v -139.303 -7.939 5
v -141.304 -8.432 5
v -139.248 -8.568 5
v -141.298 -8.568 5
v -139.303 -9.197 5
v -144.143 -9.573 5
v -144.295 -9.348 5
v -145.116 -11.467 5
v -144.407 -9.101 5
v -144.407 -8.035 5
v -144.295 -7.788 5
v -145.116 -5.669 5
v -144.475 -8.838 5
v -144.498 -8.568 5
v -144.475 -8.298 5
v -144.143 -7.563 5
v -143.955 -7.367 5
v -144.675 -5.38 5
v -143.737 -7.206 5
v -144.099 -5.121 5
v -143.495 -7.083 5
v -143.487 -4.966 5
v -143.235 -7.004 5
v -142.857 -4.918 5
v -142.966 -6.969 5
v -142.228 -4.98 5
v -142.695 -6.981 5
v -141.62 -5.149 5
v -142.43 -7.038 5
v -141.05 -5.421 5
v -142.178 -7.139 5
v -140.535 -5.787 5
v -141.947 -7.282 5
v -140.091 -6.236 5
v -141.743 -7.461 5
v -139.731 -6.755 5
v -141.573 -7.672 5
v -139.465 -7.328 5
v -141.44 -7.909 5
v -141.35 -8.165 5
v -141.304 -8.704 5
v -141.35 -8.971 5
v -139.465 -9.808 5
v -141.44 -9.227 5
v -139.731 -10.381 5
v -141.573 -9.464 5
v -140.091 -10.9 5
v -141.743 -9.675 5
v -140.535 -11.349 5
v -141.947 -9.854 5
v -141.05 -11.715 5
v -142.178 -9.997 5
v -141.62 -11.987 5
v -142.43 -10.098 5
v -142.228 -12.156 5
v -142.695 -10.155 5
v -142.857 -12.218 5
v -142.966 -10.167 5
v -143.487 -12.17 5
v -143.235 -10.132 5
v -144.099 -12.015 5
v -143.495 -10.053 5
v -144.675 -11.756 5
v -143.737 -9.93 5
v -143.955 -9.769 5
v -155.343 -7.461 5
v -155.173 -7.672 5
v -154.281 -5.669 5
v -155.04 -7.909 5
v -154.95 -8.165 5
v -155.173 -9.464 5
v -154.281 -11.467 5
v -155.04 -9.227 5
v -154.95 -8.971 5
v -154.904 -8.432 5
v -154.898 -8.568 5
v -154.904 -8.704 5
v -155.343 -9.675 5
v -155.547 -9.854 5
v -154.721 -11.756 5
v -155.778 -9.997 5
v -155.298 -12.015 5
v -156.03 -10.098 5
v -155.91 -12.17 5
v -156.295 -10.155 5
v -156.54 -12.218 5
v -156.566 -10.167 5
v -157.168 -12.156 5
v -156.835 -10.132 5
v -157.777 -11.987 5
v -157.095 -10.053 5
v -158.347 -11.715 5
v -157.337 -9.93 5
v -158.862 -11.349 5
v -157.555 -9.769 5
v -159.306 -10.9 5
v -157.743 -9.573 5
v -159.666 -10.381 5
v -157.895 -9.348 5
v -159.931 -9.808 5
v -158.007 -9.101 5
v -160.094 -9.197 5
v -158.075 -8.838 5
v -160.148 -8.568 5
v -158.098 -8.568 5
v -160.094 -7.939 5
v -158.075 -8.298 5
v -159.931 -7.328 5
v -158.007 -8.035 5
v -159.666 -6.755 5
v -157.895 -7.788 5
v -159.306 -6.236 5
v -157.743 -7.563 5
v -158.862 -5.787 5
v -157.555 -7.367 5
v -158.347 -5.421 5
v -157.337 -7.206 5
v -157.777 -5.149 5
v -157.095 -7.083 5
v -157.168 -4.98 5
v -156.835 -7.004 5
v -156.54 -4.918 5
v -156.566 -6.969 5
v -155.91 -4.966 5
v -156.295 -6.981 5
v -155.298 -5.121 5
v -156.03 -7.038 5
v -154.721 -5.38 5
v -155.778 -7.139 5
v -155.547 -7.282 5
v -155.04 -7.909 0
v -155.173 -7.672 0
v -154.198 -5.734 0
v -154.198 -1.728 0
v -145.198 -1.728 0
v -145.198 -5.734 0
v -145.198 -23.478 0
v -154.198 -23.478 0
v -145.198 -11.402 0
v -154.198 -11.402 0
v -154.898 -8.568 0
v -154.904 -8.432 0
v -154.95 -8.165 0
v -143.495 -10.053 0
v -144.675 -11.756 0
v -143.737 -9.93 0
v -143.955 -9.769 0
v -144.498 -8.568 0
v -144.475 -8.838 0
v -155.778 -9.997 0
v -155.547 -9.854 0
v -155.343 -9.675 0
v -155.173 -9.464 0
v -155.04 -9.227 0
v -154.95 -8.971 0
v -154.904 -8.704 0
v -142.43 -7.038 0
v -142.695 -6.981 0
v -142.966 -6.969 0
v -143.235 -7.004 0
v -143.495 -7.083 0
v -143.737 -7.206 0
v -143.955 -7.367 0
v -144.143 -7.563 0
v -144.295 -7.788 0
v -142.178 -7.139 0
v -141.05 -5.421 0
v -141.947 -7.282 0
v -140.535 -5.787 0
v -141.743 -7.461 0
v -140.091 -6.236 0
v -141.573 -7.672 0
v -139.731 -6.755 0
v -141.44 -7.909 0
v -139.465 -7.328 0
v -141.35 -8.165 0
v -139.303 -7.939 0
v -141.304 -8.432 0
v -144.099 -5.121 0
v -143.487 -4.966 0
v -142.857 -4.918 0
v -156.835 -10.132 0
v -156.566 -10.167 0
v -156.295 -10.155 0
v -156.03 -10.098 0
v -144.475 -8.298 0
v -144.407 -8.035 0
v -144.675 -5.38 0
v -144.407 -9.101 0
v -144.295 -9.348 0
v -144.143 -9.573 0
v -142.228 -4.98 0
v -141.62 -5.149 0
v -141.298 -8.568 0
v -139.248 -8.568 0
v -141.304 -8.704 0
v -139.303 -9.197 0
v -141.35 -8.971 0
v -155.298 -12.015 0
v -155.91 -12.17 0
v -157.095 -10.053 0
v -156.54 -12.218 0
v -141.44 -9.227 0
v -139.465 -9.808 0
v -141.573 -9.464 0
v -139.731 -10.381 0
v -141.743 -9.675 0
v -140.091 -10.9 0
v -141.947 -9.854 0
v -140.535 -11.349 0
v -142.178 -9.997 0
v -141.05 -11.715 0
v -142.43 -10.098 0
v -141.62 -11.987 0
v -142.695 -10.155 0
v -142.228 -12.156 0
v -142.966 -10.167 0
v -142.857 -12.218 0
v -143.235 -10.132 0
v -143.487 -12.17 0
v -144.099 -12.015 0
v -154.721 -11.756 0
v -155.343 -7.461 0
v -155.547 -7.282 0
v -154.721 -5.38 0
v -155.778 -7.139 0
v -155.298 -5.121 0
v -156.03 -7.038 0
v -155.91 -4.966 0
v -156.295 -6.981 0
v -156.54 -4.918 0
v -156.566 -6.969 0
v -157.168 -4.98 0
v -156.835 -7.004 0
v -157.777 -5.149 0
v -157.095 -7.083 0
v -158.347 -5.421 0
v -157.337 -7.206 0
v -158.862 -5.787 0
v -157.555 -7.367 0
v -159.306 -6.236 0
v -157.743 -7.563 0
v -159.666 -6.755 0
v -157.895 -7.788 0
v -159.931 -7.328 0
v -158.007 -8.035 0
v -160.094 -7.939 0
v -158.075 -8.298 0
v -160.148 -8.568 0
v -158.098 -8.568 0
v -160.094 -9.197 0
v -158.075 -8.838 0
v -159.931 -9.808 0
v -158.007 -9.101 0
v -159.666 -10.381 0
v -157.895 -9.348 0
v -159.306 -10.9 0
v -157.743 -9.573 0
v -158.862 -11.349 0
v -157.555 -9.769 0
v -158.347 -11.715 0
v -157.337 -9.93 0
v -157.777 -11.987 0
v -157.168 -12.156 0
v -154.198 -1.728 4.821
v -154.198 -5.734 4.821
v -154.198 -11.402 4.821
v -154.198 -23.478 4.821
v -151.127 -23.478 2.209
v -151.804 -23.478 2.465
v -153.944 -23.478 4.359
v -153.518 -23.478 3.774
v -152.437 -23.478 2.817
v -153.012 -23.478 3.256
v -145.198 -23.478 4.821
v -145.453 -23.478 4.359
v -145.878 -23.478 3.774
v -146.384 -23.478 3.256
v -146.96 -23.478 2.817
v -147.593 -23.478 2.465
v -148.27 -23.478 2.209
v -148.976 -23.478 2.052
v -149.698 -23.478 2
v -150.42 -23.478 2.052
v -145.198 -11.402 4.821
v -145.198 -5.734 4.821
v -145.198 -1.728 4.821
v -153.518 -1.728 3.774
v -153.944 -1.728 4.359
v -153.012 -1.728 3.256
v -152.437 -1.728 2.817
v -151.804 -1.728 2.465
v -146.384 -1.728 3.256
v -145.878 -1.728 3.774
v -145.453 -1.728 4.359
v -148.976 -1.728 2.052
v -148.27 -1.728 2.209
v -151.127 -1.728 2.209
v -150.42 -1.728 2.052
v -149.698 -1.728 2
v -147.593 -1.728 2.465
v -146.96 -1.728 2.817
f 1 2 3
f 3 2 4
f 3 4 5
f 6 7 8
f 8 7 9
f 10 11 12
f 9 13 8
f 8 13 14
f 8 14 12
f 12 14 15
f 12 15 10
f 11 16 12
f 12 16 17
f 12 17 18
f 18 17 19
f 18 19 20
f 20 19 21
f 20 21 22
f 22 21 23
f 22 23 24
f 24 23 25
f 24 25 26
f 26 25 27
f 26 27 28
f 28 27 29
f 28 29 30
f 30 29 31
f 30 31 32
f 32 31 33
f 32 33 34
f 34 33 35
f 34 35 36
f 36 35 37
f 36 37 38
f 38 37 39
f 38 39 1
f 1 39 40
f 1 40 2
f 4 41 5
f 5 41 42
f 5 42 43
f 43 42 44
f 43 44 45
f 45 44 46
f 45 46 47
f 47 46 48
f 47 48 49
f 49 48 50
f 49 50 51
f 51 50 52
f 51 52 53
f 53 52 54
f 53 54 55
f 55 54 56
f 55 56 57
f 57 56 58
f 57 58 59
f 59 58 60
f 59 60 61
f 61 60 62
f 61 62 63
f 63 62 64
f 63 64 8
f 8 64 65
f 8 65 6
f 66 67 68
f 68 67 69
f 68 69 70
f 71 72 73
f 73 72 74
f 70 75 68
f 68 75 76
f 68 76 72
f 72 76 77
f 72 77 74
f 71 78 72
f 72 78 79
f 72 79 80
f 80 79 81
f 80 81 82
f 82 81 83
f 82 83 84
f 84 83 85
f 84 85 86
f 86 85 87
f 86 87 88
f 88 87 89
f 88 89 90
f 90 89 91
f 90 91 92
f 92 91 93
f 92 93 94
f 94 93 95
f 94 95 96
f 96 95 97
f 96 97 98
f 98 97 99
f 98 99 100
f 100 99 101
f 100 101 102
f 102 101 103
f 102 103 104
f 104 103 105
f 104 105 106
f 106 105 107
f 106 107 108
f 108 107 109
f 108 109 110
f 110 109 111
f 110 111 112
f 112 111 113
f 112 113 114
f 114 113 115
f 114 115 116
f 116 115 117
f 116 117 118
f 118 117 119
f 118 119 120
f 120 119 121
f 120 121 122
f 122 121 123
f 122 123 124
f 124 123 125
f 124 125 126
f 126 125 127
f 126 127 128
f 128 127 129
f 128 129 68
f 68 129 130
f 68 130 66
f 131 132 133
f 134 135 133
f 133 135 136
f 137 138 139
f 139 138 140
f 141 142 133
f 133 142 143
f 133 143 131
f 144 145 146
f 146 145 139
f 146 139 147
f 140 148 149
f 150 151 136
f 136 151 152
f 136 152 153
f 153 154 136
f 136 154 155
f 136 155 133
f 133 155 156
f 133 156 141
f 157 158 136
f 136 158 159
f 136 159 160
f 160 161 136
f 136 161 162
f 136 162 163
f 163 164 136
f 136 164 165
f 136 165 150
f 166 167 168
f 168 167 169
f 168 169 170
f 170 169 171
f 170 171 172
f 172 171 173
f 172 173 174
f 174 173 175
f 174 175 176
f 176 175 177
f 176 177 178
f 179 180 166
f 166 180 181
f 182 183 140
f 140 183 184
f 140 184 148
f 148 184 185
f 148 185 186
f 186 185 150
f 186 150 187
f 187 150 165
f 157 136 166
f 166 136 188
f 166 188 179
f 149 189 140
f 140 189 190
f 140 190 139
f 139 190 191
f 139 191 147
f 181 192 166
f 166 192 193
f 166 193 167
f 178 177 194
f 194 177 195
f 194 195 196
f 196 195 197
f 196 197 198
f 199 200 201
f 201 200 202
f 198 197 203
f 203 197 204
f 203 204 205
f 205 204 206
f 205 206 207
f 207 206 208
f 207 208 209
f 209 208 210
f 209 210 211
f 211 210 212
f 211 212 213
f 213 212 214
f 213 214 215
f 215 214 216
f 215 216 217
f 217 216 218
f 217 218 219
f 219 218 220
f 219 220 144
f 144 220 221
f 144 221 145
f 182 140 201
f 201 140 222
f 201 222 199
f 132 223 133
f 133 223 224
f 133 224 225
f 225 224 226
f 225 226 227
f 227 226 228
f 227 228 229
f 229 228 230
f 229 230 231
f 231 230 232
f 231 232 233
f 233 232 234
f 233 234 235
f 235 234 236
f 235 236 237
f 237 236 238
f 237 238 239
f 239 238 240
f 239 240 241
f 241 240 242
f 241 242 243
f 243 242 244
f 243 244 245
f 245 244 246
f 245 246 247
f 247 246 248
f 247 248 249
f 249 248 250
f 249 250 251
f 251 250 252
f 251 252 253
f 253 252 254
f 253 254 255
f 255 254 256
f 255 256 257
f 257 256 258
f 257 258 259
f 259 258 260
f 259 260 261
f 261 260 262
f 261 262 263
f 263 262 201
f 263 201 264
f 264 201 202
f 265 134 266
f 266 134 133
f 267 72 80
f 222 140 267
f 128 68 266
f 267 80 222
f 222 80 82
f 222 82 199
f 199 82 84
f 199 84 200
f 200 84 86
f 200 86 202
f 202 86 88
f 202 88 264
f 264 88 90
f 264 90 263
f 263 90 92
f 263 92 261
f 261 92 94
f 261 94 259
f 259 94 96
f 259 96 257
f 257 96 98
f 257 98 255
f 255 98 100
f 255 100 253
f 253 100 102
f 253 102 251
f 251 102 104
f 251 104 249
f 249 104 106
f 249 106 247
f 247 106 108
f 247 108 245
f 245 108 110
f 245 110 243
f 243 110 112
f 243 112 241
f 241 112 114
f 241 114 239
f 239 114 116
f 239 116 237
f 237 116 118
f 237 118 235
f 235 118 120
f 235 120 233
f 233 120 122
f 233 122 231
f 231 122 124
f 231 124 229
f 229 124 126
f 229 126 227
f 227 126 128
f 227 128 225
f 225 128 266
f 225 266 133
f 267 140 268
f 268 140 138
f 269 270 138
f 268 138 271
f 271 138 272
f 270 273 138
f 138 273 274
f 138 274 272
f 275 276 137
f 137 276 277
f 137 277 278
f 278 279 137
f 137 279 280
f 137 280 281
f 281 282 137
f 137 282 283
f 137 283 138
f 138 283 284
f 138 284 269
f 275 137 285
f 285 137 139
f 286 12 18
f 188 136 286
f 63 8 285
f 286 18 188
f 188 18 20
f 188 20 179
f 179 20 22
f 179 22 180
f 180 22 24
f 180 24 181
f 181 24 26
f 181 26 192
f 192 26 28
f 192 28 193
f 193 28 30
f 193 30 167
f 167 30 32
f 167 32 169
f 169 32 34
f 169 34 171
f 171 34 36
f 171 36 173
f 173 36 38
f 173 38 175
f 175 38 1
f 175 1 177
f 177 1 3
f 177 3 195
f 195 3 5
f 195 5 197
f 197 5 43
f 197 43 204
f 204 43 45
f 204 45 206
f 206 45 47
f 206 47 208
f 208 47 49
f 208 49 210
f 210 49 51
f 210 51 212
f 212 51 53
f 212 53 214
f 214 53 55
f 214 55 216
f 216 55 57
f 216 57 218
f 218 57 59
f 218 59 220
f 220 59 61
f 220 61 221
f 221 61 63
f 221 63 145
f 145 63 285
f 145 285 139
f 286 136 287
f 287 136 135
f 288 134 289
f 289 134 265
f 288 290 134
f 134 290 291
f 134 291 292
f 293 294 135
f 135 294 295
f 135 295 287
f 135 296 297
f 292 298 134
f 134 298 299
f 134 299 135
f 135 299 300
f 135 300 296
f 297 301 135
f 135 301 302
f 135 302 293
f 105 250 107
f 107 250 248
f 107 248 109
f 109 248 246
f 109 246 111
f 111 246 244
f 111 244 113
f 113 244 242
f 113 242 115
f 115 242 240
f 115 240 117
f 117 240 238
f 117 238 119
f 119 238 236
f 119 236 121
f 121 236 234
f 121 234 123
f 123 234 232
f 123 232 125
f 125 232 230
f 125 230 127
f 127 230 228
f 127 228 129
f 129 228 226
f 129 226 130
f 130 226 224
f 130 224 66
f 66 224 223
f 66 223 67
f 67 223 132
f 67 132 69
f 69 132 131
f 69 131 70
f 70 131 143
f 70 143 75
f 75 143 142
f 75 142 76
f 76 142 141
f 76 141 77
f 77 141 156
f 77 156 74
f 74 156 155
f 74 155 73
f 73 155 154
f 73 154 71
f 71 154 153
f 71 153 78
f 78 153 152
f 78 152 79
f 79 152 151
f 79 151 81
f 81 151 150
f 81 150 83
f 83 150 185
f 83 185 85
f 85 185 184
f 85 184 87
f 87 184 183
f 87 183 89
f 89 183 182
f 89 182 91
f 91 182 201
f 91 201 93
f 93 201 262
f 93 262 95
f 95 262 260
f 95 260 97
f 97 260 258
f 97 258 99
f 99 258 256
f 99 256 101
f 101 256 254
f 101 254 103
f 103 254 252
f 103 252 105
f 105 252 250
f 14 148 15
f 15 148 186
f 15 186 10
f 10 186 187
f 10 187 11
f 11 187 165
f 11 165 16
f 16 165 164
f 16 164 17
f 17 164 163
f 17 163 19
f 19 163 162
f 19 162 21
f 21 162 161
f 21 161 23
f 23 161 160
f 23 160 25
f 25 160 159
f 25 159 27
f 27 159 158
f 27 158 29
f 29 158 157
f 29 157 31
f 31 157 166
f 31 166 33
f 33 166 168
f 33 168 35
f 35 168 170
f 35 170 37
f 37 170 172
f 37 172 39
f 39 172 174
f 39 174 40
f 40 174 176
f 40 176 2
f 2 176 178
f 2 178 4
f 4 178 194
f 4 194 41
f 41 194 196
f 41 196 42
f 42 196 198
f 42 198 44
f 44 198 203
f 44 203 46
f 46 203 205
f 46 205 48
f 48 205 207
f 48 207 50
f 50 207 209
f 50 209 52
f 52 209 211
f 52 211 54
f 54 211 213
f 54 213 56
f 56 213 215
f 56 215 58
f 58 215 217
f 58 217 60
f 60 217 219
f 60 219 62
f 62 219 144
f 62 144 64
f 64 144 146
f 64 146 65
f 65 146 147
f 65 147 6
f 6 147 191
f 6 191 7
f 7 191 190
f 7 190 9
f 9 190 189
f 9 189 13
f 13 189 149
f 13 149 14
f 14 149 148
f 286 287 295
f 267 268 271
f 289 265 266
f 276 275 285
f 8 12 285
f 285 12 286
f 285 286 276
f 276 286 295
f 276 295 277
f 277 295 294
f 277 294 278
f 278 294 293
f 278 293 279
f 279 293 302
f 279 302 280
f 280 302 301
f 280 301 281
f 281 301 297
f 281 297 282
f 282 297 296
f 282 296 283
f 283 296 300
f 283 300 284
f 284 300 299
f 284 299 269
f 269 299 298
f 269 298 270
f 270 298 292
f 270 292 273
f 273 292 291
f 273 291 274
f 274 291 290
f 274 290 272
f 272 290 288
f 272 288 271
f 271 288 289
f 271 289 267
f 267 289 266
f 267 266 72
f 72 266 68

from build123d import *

# Parameters (mm, degrees)
SKETCH1_R           = 1.6
BOSS_EXTRUDE1_DEPTH = 5
SKETCH2_R           = 5
CUT_EXTRUDE1_DEPTH  = 162.695924751


with BuildPart() as part:
    # Sketch1 → Boss-Extrude1 (new body)
    with BuildSketch(Plane.XY):
        with BuildLine():
            Line((-154.198398621, -11.402119157), (-154.198398621, -23.477952613))
            Line((-154.198398621, -23.477952613), (-145.198398621, -23.477952613))
            Line((-145.198398621, -23.477952613), (-145.198398621, -11.402119157))
            ThreePointArc((-145.198398621, -11.402119157), (-139.248398621, -8.567952613), (-145.198398621, -5.733786068))
            Line((-145.198398621, -5.733786068), (-145.198398621, -1.727952613))
            Line((-145.198398621, -1.727952613), (-154.198398621, -1.727952613))
            Line((-154.198398621, -1.727952613), (-154.198398621, -5.733786068))
            ThreePointArc((-154.198398621, -5.733786068), (-160.148398621, -8.567952613), (-154.198398621, -11.402119157))
        make_face()
        with Locations((-156.498398621, -8.567952613)):
            Circle(SKETCH1_R, mode=Mode.SUBTRACT)
        with Locations((-142.898398621, -8.567952613)):
            Circle(SKETCH1_R, mode=Mode.SUBTRACT)
    extrude(amount=BOSS_EXTRUDE1_DEPTH)

    # Sketch2 → Cut-Extrude1 (cut, through all)
    with BuildSketch(Plane(origin=(0, -1.727952613, 0), x_dir=(1, 0, 0), z_dir=(0, 1, 0))):
        with Locations((-149.698398621, -7)):
            Circle(SKETCH2_R)
    extrude(amount=-CUT_EXTRUDE1_DEPTH, mode=Mode.SUBTRACT)


solid = part.part
